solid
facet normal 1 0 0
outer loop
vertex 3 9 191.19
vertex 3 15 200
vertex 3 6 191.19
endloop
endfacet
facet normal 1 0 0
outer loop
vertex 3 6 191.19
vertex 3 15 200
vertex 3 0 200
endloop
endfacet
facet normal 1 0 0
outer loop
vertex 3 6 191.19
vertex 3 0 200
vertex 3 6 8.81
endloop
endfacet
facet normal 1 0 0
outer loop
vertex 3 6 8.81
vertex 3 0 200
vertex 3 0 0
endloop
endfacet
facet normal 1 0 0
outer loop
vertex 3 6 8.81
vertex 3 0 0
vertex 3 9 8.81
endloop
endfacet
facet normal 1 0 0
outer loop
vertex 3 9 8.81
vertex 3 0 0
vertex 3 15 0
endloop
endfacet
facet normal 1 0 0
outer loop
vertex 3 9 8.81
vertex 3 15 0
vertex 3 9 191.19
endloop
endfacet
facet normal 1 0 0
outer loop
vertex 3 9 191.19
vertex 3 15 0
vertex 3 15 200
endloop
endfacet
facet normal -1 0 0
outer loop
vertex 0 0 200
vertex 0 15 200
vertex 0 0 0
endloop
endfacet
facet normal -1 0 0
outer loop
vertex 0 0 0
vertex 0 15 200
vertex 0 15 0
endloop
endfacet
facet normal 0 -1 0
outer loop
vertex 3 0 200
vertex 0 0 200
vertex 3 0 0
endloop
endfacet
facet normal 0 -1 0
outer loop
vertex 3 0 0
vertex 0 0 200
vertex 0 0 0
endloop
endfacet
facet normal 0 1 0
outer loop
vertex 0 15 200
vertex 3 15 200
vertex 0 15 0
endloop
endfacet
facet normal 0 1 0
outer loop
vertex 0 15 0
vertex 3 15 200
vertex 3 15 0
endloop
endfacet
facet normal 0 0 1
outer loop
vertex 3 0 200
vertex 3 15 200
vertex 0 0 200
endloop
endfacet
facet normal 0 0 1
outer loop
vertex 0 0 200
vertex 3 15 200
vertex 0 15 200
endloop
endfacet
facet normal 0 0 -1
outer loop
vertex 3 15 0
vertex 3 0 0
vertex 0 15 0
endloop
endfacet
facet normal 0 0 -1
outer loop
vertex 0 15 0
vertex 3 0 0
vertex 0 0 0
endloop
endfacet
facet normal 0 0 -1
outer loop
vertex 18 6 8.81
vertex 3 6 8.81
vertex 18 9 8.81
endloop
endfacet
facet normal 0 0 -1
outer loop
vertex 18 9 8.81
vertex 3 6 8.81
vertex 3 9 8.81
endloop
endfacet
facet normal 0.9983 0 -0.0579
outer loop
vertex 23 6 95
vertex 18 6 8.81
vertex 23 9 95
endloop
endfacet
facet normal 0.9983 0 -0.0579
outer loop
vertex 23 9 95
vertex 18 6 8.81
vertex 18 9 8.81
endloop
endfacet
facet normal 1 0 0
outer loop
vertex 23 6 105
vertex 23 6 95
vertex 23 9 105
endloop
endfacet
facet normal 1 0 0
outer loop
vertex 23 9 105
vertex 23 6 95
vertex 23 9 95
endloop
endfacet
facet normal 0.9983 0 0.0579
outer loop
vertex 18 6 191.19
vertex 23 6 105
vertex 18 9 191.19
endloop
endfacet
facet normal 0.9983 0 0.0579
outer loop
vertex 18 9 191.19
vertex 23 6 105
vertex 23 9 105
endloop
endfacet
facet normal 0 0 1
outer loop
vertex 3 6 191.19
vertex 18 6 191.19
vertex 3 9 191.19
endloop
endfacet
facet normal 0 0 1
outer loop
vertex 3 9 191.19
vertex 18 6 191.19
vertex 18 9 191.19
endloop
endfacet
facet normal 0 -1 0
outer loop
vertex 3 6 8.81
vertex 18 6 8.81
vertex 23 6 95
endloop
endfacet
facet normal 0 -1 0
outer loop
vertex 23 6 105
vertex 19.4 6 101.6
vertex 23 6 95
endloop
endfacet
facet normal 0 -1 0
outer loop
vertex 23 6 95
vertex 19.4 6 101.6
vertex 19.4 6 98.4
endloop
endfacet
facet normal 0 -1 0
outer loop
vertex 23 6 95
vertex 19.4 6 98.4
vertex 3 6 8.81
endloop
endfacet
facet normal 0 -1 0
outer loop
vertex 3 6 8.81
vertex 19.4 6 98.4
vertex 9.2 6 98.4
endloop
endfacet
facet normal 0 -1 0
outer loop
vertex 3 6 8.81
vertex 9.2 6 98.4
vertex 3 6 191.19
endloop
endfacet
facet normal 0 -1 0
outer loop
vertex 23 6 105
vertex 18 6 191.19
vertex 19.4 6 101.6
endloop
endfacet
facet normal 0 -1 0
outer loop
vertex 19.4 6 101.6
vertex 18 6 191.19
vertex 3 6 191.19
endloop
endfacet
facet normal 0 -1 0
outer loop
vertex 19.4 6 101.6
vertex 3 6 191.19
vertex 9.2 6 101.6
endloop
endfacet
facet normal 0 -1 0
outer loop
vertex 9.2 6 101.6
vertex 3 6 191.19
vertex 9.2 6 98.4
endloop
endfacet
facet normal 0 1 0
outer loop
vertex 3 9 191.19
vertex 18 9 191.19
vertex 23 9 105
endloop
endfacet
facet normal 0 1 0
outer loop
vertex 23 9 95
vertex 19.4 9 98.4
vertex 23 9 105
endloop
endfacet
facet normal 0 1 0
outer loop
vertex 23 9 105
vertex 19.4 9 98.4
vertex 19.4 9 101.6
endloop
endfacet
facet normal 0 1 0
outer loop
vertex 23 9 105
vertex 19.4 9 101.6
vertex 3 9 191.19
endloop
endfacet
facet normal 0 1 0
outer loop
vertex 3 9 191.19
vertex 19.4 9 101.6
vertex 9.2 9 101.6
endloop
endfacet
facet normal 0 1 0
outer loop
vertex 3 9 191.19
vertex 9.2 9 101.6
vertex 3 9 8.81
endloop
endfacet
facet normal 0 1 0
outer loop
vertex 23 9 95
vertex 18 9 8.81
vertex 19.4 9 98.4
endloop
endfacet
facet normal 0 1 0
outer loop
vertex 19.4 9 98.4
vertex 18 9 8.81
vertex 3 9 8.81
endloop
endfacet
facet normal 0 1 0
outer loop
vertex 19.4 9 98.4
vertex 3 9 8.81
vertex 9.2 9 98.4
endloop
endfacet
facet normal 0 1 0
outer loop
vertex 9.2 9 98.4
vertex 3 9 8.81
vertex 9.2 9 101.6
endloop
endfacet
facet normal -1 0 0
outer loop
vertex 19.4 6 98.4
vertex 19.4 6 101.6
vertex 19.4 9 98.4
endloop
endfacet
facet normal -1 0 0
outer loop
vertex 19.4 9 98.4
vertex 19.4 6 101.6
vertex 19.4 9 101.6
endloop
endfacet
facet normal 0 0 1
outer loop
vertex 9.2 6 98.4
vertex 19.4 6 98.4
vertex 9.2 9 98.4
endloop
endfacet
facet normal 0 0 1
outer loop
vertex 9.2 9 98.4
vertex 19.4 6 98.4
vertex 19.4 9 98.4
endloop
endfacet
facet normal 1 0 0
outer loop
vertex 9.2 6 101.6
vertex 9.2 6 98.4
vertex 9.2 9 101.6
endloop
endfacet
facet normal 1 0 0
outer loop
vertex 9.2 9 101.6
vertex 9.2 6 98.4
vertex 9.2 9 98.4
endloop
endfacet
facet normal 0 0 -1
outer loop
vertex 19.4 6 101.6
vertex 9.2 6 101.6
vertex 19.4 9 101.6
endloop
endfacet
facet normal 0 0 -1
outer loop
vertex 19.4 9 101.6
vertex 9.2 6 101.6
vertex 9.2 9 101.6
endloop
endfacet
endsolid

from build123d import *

# Parameters (mm, degrees)
SKETCH_1_W          = 3
SKETCH_1_H          = 15
EXTRUDE_1_DEPTH     = 200
EXTRUDE_7_DEPTH     = 3
SKETCH_13_W         = 10.2
SKETCH_13_H         = 3.2
CUT_EXTRUDE_2_DEPTH = 23


with BuildPart() as part:
    # 草图1 → 凸台-拉伸1 (new body)
    with BuildSketch(Plane.XY):
        with Locations((1.5, 7.5)):
            Rectangle(SKETCH_1_W, SKETCH_1_H)
    extrude(amount=EXTRUDE_1_DEPTH)

    # 草图12 → 凸台-拉伸7 (add)
    with BuildSketch(Plane(origin=(0, 9, 0), x_dir=(1, 0, 0), z_dir=(0, 1, 0))):
        Polygon((18, -191.190016229), (23, -105), (23, -95), (18, -8.809983771), (3, -8.809983771), (3, -191.190016229), align=None)
    extrude(amount=-EXTRUDE_7_DEPTH)

    # 草图13 → 切除-拉伸2 (cut)
    with BuildSketch(Plane.XZ.offset(-6)):
        with Locations((14.3, 100)):
            Rectangle(SKETCH_13_W, SKETCH_13_H)
    extrude(amount=-CUT_EXTRUDE_2_DEPTH, mode=Mode.SUBTRACT)


solid = part.part
